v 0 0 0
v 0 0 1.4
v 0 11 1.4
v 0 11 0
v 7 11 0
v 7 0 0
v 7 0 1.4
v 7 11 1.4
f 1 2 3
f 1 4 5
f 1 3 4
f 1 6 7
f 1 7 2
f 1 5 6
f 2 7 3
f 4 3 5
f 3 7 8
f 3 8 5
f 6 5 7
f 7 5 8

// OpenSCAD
/* Warning, this is a very basic generator with a lot of approximation 
input data : [LFLGA, PFX, 7x11x1.4mm, 86, , A, C04-00467A]
generated by com.zoubworld.electronics.cad.model3d.Basic
Date : Sun Feb 15 10:50:48 CET 2026
*/

//body
color("black")
translate([0,0,0])
cube([7.0,11.0,1.4], center=false);
